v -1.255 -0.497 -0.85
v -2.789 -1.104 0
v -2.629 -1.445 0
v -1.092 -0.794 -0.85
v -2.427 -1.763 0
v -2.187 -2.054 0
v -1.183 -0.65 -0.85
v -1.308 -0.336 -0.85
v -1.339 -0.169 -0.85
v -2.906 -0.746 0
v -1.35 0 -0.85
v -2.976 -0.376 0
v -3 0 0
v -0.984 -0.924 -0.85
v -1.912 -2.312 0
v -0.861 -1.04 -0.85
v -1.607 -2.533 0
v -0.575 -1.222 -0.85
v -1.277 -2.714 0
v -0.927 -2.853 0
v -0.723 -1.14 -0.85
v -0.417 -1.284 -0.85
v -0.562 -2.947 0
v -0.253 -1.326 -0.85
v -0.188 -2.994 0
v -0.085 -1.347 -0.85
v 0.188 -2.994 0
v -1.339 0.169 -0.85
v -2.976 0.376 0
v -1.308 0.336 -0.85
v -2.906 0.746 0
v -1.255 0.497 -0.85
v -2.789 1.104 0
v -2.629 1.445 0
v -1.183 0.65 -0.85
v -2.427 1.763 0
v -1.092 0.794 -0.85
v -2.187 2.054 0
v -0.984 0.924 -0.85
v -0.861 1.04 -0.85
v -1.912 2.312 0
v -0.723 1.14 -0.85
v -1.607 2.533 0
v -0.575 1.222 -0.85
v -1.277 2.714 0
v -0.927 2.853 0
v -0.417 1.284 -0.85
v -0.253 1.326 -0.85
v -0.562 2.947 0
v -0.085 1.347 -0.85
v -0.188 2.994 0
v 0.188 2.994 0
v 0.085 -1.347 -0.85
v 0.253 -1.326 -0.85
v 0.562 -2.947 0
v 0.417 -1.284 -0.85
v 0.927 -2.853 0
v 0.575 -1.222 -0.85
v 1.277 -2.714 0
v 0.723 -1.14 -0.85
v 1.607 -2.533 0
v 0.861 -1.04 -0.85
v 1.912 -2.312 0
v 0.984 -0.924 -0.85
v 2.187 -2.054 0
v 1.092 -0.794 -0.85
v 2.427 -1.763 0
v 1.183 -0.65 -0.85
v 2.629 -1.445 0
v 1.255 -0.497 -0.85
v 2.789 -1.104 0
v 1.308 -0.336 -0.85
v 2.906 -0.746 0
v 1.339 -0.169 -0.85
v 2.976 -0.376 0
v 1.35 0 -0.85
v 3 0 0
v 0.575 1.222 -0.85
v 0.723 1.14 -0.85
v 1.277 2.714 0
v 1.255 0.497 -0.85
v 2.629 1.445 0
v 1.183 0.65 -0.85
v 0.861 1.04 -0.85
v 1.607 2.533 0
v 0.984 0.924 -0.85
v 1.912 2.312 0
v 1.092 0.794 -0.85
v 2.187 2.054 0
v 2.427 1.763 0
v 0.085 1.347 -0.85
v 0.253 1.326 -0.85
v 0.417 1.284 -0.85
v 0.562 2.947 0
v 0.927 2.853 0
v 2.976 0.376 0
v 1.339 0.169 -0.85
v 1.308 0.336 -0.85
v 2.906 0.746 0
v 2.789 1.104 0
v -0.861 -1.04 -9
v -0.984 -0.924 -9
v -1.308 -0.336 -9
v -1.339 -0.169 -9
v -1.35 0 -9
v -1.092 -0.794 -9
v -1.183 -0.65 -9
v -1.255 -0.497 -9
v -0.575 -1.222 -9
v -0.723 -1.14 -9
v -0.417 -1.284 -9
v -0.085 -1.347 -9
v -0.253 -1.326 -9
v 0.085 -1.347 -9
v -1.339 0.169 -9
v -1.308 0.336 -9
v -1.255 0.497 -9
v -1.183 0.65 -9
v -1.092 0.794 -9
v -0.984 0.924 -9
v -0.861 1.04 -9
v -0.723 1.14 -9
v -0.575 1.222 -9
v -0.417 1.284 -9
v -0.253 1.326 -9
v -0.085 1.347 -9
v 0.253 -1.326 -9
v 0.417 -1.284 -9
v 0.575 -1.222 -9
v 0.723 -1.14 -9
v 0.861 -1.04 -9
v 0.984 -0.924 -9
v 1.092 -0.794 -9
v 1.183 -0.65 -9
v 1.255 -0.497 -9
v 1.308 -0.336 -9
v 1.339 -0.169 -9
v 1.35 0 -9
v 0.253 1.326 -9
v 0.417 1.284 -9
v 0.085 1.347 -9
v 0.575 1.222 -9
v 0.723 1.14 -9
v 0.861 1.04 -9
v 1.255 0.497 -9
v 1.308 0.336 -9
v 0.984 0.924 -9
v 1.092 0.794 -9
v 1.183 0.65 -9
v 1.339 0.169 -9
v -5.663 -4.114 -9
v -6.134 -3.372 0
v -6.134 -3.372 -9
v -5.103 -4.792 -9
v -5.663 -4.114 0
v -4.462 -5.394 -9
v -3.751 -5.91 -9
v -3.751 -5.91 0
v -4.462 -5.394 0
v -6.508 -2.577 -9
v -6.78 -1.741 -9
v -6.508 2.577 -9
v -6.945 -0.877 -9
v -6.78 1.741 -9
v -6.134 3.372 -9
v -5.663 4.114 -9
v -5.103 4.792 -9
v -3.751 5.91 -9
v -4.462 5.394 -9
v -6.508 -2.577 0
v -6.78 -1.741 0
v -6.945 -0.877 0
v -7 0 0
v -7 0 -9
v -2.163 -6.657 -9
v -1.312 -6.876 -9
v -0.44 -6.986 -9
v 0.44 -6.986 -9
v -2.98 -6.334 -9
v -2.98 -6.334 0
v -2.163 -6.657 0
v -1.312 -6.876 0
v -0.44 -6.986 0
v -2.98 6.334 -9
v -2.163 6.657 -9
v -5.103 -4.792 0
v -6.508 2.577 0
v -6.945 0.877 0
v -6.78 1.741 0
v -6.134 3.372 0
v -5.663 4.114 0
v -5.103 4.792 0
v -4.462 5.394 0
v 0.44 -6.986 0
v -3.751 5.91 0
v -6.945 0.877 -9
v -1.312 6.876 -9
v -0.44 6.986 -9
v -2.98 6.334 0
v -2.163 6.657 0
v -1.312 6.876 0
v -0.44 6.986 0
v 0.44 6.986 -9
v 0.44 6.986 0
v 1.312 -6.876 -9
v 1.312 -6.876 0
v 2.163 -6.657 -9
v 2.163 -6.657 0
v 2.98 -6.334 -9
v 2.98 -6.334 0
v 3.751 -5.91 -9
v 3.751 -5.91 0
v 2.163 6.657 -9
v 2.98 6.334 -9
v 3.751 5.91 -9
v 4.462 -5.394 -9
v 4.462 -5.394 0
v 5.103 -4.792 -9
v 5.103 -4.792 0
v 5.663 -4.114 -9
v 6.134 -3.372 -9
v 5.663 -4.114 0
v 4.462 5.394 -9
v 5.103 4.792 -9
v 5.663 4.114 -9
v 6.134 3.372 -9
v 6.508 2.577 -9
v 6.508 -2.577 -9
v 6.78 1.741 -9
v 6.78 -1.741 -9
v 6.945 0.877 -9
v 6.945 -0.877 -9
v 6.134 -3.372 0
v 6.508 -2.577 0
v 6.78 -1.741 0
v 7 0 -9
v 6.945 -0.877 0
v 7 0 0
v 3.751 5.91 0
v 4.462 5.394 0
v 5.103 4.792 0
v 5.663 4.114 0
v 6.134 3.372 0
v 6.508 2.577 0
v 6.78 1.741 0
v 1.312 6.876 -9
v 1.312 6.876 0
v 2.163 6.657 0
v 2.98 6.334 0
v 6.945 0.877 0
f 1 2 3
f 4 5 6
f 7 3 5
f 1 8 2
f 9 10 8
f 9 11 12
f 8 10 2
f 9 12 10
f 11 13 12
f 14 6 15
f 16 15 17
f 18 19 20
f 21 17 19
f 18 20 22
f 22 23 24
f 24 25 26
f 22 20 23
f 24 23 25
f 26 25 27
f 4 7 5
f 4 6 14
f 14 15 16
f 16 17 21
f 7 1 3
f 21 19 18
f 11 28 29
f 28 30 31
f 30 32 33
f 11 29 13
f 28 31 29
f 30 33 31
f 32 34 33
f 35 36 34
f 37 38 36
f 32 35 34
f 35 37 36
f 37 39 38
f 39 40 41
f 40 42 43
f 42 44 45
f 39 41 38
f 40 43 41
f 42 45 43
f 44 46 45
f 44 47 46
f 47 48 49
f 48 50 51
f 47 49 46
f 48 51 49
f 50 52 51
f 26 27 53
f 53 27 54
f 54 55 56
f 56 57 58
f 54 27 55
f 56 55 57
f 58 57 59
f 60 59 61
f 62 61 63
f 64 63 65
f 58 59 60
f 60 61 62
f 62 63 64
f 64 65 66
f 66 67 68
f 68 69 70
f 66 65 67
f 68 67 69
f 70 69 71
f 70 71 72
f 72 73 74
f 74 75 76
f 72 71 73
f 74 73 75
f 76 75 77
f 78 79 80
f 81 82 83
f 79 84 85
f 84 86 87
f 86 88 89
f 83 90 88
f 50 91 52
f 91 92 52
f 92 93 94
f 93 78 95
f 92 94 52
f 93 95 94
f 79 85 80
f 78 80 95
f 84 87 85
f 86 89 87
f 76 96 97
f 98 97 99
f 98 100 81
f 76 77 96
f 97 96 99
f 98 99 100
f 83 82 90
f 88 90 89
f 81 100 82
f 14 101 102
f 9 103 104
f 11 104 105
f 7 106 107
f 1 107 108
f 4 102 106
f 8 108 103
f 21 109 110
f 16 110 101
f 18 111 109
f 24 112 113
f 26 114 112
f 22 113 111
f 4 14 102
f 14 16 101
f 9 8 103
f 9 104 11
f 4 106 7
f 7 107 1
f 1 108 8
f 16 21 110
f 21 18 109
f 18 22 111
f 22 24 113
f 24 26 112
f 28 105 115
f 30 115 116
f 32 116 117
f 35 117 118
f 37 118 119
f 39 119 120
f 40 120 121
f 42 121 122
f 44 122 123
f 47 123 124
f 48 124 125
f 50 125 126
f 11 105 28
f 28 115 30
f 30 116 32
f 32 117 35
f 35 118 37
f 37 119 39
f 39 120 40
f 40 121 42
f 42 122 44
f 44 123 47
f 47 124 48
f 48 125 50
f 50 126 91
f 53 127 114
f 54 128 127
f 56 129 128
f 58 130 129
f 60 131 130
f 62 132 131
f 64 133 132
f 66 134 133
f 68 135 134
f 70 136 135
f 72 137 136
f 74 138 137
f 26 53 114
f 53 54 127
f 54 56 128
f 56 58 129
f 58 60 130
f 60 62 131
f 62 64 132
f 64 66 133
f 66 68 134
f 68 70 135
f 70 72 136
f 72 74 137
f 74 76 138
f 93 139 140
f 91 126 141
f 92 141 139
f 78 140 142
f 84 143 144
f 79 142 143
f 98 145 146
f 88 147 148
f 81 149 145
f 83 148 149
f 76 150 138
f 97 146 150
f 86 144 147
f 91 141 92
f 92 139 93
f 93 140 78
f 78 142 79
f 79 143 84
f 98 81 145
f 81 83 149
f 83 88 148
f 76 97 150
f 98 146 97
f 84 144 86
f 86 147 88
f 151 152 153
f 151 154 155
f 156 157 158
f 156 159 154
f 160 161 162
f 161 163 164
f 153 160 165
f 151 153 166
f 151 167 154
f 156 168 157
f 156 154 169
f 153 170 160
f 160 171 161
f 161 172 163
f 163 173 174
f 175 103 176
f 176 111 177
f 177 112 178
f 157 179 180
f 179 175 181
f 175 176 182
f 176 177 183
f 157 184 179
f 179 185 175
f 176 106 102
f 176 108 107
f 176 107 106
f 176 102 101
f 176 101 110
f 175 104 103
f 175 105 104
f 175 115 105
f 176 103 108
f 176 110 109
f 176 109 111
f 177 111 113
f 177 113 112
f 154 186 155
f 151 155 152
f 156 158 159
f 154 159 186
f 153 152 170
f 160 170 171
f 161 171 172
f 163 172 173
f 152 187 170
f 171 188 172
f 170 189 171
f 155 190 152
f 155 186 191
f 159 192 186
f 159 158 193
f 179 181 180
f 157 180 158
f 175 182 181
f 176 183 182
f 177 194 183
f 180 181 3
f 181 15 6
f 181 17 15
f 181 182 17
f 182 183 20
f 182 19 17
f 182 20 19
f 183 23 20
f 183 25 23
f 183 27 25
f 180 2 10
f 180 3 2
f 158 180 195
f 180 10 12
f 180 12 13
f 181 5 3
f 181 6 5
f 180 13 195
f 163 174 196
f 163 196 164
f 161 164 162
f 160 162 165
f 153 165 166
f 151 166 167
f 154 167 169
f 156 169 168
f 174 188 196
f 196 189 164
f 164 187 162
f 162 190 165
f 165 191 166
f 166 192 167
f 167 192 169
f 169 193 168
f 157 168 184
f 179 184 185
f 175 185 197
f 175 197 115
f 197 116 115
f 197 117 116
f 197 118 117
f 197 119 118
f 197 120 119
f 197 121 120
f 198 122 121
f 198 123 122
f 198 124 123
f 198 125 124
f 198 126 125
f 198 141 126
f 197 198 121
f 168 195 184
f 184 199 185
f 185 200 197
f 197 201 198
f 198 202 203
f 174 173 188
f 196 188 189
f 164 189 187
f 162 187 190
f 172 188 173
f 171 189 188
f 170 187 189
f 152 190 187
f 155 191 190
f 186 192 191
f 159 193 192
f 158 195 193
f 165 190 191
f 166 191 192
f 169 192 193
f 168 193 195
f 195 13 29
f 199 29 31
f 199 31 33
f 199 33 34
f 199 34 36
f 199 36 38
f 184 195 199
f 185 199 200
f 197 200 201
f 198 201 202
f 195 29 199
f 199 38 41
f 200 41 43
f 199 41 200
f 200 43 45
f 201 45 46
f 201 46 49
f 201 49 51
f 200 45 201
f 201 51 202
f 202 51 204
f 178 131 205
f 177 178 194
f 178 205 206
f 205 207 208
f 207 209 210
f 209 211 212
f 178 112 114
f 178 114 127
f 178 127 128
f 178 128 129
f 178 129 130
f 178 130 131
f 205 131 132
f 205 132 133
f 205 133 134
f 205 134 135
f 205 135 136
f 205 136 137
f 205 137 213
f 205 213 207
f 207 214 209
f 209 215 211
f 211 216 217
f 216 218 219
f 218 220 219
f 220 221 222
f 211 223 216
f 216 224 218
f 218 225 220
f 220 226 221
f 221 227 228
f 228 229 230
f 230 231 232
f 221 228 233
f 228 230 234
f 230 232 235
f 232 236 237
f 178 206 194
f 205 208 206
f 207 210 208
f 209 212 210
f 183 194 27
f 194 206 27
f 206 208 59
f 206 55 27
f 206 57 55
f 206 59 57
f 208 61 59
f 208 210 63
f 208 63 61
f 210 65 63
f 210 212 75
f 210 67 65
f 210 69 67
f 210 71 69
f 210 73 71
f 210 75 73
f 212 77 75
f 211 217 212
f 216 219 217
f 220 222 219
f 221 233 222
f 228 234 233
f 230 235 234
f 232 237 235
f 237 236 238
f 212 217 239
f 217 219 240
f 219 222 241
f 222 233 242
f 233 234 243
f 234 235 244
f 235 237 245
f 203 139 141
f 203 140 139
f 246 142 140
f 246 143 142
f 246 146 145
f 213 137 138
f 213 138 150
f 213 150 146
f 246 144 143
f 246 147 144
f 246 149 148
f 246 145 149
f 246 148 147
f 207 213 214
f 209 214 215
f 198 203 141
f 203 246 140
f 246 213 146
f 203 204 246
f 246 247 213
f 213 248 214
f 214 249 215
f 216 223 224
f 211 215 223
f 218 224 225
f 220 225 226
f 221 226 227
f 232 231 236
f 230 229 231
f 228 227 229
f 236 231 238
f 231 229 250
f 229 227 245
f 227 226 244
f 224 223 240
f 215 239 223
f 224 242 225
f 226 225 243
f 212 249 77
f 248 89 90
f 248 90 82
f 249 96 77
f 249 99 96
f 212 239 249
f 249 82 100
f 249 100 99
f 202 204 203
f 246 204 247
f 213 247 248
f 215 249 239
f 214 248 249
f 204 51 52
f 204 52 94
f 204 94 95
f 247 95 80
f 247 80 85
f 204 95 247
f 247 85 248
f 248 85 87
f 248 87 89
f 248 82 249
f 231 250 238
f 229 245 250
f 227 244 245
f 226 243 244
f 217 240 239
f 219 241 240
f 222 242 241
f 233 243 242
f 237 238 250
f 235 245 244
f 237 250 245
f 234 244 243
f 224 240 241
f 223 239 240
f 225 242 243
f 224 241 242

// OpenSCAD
$fn = 50;

difference() {
	union() {
		translate(v = [0, 0, -9.0]) {
			cylinder(h = 9, r = 7.0);
		}
	}
	union() {
		translate(v = [0, 0, 0]) {
			rotate(a = [0, 0, 0]) {
				difference() {
					union() {
						translate(v = [0, 0, -12.0]) {
							cylinder(h = 12, r = 1.0);
						}
						translate(v = [0, 0, -0.85]) {
							cylinder(h = 0.85, r1 = 1.35, r2 = 3.0);
						}
						translate(v = [0, 0, -12.0]) {
							cylinder(h = 12, r = 1.35);
						}
						translate(v = [0, 0, -12.0]) {
							cylinder(h = 12, r = 1.0);
						}
					}
					union();
				}
			}
		}
	}
}
